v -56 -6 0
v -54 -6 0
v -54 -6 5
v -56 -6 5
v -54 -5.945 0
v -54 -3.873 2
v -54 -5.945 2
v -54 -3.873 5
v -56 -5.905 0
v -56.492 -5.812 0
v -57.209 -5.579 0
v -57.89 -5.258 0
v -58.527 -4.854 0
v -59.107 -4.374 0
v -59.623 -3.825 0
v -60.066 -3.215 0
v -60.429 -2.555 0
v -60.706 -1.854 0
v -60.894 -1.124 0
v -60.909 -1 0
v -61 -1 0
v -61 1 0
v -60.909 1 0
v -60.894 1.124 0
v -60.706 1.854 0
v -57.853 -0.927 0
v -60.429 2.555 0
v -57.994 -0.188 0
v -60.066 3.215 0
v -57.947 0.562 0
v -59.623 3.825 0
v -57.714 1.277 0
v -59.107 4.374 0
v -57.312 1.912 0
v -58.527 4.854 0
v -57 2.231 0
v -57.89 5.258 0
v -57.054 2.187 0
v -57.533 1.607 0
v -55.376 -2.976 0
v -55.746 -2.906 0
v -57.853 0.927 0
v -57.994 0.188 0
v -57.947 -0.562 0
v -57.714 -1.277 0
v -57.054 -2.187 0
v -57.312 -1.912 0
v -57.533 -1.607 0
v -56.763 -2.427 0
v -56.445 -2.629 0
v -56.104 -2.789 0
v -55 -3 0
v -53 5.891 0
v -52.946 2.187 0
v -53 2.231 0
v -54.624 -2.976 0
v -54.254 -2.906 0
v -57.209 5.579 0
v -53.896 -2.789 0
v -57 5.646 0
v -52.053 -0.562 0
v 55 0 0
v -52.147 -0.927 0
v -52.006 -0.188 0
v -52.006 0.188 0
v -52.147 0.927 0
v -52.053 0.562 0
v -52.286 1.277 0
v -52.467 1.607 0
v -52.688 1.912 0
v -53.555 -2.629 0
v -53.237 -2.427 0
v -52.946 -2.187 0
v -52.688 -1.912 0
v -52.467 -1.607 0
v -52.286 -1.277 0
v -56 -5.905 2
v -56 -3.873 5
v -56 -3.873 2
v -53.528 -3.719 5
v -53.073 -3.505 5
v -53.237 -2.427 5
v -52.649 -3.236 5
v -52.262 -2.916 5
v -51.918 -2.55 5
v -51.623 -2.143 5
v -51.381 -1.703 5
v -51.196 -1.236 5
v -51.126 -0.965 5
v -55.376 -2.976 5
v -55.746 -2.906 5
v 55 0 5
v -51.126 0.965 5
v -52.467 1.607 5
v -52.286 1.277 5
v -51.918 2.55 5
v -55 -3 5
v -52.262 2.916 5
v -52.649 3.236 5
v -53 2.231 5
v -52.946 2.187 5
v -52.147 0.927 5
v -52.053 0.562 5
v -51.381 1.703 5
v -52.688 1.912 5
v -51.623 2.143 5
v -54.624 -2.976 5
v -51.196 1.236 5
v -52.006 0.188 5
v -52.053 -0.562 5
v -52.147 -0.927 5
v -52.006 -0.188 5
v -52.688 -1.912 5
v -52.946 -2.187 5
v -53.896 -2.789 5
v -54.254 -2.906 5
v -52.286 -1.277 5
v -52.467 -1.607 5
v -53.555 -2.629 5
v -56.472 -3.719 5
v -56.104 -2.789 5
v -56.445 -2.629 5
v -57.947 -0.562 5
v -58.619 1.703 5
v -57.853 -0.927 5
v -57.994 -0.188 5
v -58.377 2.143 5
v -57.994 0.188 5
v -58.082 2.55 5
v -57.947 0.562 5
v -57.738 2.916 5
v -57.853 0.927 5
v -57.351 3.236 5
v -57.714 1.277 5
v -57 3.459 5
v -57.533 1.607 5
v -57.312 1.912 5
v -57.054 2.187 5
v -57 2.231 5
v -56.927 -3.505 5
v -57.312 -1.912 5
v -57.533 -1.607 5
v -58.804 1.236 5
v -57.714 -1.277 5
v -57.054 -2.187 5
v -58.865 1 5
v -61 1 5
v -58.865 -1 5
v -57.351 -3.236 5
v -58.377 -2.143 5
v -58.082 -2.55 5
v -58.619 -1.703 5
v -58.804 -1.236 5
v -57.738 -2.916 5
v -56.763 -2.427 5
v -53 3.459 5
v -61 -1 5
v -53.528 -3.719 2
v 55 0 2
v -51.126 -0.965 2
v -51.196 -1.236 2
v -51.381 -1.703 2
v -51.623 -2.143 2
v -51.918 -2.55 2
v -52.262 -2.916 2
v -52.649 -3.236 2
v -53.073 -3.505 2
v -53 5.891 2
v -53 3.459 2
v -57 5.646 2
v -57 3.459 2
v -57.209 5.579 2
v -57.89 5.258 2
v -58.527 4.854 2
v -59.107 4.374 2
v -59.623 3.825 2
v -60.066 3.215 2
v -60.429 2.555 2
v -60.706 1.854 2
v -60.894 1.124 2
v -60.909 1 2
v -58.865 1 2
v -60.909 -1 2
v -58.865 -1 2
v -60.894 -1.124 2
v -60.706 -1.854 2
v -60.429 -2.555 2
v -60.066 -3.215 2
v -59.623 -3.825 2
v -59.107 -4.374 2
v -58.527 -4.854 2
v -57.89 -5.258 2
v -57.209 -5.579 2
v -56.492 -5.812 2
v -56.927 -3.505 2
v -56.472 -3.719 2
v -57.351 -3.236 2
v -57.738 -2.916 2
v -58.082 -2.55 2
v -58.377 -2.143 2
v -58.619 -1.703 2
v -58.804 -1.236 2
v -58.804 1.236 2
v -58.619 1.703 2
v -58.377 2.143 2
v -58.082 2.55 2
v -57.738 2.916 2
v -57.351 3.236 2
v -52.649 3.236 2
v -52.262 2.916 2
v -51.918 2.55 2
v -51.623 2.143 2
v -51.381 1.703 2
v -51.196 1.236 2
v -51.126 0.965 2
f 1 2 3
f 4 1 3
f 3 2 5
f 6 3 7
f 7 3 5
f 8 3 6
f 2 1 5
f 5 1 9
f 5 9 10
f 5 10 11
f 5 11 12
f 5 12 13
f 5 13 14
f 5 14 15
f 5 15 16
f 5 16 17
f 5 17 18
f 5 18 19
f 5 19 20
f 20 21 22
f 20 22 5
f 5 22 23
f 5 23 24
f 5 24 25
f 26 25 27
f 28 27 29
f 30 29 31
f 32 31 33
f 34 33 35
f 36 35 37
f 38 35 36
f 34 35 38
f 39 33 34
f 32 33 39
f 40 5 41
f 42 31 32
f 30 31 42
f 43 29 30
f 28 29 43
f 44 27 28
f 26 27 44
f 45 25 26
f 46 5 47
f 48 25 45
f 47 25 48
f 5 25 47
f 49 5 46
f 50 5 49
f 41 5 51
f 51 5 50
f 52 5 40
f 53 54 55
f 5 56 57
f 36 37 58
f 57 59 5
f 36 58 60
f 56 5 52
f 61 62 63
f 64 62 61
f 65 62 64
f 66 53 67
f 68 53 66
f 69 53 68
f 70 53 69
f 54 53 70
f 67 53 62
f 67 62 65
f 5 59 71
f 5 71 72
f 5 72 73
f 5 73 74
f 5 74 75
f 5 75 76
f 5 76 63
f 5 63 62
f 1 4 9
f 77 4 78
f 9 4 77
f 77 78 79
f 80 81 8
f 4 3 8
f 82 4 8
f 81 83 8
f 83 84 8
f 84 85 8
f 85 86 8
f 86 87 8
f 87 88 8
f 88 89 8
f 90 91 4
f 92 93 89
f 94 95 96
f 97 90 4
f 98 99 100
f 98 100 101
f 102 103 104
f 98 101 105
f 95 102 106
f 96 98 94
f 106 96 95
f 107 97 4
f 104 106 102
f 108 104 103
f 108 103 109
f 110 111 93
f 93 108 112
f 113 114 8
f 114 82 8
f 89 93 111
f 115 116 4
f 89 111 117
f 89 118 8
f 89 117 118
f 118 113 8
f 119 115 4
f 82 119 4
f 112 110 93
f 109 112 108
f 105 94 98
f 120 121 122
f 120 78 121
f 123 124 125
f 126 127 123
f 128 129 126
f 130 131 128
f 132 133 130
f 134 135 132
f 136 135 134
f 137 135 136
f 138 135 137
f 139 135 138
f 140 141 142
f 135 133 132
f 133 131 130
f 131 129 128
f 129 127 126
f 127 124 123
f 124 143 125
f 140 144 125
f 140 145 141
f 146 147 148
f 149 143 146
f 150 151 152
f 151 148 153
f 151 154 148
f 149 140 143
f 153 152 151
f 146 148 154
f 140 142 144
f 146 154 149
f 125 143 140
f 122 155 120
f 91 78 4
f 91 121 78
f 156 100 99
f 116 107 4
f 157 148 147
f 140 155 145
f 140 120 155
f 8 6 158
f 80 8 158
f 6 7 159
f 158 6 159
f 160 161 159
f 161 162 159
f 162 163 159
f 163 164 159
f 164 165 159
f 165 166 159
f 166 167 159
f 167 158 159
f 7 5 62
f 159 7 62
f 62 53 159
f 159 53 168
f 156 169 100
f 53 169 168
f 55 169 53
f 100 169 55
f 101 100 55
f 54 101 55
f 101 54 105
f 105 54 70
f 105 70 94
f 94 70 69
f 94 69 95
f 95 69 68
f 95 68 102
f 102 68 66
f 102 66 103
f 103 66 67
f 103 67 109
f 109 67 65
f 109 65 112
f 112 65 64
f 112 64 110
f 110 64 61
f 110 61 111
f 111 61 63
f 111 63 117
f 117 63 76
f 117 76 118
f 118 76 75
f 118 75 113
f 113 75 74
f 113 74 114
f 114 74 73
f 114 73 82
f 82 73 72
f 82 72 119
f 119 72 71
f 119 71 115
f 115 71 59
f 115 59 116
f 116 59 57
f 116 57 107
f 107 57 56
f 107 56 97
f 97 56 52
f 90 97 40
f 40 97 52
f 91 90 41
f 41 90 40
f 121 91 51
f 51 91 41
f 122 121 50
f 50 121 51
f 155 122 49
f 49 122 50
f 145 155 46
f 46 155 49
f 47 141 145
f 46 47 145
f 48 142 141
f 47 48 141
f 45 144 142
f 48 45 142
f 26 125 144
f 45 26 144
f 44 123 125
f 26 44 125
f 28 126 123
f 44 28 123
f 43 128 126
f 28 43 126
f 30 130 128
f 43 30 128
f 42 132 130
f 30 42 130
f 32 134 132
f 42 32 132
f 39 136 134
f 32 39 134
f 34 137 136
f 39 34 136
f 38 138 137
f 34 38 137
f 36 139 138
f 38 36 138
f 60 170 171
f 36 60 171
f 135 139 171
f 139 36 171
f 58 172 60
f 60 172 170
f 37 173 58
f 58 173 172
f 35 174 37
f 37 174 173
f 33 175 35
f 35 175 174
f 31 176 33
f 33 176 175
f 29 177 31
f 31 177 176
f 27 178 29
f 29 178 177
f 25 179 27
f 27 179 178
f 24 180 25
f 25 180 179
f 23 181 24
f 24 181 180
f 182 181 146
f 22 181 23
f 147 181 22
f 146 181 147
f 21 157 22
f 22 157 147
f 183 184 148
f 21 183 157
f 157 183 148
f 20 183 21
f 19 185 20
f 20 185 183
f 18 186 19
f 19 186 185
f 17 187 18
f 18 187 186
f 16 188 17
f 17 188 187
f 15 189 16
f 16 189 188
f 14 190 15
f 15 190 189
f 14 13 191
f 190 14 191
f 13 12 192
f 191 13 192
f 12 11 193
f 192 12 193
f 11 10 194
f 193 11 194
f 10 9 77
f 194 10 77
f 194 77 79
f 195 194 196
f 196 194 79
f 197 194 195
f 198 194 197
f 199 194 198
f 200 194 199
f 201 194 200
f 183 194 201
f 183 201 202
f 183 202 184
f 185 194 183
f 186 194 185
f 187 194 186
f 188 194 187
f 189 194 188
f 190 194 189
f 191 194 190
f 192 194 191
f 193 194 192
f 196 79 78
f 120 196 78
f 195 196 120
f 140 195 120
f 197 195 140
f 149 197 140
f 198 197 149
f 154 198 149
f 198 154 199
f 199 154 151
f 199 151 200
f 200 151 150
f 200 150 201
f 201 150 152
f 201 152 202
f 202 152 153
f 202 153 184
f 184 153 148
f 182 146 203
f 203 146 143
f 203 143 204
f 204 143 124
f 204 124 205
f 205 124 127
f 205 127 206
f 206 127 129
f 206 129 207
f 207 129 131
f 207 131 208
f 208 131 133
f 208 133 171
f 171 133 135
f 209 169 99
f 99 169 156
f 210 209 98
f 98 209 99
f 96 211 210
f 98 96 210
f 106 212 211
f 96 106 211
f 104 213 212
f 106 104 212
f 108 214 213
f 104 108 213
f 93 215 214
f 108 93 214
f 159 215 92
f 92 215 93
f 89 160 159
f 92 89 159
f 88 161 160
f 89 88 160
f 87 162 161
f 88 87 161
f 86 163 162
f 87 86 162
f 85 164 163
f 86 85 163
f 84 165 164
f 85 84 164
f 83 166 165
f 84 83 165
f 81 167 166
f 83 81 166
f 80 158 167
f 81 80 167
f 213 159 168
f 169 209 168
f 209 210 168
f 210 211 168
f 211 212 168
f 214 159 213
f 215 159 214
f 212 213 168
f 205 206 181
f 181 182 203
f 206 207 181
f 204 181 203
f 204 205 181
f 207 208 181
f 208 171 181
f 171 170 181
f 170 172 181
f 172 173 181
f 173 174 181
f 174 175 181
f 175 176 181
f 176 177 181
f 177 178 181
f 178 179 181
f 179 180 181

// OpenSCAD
// Garden irrigation hose stake by Brian Enigma
// The defaults are designed for a 1/4" hose.  Feel free to adjust as needed.

// This is the inside diameter of the hook part.  Coincidentally, it's also the
// outside diameter of your hose.
INSIDE_DIAMETER = 6;

// This is the overall length of the stake
LENGTH = 110;

// This is the height (or thickness, depending on how you look at it) of the 
// tallest part of the stake -- the thickness of the reinforcing ring and
// bars.
HEIGHT = 5;

// This is the thickness of all the rest of the stake that isn't a reinforcing
// ring or bar.
THICKNESS = 2;

// This is the diameter of the biggest plastic circle.
CLIP_OUTSIDE_DIAMETER = 12;

// This is the clearance you get on the slot to insert the hose.  A smaller
// value gives you a tighter fit, but it also makes the hose more difficult
// to insert.
SLOT_DIAMETER = 4;

// The detail (number of sides) of the circles.
DETAIL = 50;

//###################################################################### 

REINFORCEMENT_OUTSIDE_DIAMETER = INSIDE_DIAMETER + THICKNESS;

module clip()
{
    union()
    {
        // Cylinder for holding the hose
        cylinder(h = HEIGHT, r = REINFORCEMENT_OUTSIDE_DIAMETER / 2, $fn = DETAIL);
        // Outermost cylinder
        cylinder(h = THICKNESS, r = CLIP_OUTSIDE_DIAMETER / 2, $fn = DETAIL);
        // Y-axis reinforcement bar
        translate(v = [THICKNESS / -2, 0, 0])
            cube(size = [THICKNESS, CLIP_OUTSIDE_DIAMETER / 2, HEIGHT]);
        // X-axis reinforcement bar
        translate(v = [CLIP_OUTSIDE_DIAMETER / -2, THICKNESS / -2, 0])
            cube(size = [CLIP_OUTSIDE_DIAMETER, THICKNESS, HEIGHT]);
    }
}

module clip_hole()
{
    translate(v = [0, 0, -1])
        cylinder(h = HEIGHT + 2, r = INSIDE_DIAMETER / 2, $fn = DETAIL);
    translate(v = [0, SLOT_DIAMETER / -2, -1])
        cube(size = [CLIP_OUTSIDE_DIAMETER, SLOT_DIAMETER, HEIGHT + 2]);
}

module stake()
{
    linear_extrude(height = THICKNESS)
        polygon(points = [[CLIP_OUTSIDE_DIAMETER / 2, 0], [0, -1 * LENGTH], [CLIP_OUTSIDE_DIAMETER / -2, 0]]);
    linear_extrude(height = HEIGHT)
        polygon(points = [[THICKNESS / 2, 0], [0, -1 * LENGTH], [THICKNESS / -2, 0]]);

}

translate(v = [LENGTH / -2, 0, 0])
rotate(a = [0, 0, 90])
difference()
{
    union()
    {
        clip();
        stake();
    }
    clip_hole();
}
